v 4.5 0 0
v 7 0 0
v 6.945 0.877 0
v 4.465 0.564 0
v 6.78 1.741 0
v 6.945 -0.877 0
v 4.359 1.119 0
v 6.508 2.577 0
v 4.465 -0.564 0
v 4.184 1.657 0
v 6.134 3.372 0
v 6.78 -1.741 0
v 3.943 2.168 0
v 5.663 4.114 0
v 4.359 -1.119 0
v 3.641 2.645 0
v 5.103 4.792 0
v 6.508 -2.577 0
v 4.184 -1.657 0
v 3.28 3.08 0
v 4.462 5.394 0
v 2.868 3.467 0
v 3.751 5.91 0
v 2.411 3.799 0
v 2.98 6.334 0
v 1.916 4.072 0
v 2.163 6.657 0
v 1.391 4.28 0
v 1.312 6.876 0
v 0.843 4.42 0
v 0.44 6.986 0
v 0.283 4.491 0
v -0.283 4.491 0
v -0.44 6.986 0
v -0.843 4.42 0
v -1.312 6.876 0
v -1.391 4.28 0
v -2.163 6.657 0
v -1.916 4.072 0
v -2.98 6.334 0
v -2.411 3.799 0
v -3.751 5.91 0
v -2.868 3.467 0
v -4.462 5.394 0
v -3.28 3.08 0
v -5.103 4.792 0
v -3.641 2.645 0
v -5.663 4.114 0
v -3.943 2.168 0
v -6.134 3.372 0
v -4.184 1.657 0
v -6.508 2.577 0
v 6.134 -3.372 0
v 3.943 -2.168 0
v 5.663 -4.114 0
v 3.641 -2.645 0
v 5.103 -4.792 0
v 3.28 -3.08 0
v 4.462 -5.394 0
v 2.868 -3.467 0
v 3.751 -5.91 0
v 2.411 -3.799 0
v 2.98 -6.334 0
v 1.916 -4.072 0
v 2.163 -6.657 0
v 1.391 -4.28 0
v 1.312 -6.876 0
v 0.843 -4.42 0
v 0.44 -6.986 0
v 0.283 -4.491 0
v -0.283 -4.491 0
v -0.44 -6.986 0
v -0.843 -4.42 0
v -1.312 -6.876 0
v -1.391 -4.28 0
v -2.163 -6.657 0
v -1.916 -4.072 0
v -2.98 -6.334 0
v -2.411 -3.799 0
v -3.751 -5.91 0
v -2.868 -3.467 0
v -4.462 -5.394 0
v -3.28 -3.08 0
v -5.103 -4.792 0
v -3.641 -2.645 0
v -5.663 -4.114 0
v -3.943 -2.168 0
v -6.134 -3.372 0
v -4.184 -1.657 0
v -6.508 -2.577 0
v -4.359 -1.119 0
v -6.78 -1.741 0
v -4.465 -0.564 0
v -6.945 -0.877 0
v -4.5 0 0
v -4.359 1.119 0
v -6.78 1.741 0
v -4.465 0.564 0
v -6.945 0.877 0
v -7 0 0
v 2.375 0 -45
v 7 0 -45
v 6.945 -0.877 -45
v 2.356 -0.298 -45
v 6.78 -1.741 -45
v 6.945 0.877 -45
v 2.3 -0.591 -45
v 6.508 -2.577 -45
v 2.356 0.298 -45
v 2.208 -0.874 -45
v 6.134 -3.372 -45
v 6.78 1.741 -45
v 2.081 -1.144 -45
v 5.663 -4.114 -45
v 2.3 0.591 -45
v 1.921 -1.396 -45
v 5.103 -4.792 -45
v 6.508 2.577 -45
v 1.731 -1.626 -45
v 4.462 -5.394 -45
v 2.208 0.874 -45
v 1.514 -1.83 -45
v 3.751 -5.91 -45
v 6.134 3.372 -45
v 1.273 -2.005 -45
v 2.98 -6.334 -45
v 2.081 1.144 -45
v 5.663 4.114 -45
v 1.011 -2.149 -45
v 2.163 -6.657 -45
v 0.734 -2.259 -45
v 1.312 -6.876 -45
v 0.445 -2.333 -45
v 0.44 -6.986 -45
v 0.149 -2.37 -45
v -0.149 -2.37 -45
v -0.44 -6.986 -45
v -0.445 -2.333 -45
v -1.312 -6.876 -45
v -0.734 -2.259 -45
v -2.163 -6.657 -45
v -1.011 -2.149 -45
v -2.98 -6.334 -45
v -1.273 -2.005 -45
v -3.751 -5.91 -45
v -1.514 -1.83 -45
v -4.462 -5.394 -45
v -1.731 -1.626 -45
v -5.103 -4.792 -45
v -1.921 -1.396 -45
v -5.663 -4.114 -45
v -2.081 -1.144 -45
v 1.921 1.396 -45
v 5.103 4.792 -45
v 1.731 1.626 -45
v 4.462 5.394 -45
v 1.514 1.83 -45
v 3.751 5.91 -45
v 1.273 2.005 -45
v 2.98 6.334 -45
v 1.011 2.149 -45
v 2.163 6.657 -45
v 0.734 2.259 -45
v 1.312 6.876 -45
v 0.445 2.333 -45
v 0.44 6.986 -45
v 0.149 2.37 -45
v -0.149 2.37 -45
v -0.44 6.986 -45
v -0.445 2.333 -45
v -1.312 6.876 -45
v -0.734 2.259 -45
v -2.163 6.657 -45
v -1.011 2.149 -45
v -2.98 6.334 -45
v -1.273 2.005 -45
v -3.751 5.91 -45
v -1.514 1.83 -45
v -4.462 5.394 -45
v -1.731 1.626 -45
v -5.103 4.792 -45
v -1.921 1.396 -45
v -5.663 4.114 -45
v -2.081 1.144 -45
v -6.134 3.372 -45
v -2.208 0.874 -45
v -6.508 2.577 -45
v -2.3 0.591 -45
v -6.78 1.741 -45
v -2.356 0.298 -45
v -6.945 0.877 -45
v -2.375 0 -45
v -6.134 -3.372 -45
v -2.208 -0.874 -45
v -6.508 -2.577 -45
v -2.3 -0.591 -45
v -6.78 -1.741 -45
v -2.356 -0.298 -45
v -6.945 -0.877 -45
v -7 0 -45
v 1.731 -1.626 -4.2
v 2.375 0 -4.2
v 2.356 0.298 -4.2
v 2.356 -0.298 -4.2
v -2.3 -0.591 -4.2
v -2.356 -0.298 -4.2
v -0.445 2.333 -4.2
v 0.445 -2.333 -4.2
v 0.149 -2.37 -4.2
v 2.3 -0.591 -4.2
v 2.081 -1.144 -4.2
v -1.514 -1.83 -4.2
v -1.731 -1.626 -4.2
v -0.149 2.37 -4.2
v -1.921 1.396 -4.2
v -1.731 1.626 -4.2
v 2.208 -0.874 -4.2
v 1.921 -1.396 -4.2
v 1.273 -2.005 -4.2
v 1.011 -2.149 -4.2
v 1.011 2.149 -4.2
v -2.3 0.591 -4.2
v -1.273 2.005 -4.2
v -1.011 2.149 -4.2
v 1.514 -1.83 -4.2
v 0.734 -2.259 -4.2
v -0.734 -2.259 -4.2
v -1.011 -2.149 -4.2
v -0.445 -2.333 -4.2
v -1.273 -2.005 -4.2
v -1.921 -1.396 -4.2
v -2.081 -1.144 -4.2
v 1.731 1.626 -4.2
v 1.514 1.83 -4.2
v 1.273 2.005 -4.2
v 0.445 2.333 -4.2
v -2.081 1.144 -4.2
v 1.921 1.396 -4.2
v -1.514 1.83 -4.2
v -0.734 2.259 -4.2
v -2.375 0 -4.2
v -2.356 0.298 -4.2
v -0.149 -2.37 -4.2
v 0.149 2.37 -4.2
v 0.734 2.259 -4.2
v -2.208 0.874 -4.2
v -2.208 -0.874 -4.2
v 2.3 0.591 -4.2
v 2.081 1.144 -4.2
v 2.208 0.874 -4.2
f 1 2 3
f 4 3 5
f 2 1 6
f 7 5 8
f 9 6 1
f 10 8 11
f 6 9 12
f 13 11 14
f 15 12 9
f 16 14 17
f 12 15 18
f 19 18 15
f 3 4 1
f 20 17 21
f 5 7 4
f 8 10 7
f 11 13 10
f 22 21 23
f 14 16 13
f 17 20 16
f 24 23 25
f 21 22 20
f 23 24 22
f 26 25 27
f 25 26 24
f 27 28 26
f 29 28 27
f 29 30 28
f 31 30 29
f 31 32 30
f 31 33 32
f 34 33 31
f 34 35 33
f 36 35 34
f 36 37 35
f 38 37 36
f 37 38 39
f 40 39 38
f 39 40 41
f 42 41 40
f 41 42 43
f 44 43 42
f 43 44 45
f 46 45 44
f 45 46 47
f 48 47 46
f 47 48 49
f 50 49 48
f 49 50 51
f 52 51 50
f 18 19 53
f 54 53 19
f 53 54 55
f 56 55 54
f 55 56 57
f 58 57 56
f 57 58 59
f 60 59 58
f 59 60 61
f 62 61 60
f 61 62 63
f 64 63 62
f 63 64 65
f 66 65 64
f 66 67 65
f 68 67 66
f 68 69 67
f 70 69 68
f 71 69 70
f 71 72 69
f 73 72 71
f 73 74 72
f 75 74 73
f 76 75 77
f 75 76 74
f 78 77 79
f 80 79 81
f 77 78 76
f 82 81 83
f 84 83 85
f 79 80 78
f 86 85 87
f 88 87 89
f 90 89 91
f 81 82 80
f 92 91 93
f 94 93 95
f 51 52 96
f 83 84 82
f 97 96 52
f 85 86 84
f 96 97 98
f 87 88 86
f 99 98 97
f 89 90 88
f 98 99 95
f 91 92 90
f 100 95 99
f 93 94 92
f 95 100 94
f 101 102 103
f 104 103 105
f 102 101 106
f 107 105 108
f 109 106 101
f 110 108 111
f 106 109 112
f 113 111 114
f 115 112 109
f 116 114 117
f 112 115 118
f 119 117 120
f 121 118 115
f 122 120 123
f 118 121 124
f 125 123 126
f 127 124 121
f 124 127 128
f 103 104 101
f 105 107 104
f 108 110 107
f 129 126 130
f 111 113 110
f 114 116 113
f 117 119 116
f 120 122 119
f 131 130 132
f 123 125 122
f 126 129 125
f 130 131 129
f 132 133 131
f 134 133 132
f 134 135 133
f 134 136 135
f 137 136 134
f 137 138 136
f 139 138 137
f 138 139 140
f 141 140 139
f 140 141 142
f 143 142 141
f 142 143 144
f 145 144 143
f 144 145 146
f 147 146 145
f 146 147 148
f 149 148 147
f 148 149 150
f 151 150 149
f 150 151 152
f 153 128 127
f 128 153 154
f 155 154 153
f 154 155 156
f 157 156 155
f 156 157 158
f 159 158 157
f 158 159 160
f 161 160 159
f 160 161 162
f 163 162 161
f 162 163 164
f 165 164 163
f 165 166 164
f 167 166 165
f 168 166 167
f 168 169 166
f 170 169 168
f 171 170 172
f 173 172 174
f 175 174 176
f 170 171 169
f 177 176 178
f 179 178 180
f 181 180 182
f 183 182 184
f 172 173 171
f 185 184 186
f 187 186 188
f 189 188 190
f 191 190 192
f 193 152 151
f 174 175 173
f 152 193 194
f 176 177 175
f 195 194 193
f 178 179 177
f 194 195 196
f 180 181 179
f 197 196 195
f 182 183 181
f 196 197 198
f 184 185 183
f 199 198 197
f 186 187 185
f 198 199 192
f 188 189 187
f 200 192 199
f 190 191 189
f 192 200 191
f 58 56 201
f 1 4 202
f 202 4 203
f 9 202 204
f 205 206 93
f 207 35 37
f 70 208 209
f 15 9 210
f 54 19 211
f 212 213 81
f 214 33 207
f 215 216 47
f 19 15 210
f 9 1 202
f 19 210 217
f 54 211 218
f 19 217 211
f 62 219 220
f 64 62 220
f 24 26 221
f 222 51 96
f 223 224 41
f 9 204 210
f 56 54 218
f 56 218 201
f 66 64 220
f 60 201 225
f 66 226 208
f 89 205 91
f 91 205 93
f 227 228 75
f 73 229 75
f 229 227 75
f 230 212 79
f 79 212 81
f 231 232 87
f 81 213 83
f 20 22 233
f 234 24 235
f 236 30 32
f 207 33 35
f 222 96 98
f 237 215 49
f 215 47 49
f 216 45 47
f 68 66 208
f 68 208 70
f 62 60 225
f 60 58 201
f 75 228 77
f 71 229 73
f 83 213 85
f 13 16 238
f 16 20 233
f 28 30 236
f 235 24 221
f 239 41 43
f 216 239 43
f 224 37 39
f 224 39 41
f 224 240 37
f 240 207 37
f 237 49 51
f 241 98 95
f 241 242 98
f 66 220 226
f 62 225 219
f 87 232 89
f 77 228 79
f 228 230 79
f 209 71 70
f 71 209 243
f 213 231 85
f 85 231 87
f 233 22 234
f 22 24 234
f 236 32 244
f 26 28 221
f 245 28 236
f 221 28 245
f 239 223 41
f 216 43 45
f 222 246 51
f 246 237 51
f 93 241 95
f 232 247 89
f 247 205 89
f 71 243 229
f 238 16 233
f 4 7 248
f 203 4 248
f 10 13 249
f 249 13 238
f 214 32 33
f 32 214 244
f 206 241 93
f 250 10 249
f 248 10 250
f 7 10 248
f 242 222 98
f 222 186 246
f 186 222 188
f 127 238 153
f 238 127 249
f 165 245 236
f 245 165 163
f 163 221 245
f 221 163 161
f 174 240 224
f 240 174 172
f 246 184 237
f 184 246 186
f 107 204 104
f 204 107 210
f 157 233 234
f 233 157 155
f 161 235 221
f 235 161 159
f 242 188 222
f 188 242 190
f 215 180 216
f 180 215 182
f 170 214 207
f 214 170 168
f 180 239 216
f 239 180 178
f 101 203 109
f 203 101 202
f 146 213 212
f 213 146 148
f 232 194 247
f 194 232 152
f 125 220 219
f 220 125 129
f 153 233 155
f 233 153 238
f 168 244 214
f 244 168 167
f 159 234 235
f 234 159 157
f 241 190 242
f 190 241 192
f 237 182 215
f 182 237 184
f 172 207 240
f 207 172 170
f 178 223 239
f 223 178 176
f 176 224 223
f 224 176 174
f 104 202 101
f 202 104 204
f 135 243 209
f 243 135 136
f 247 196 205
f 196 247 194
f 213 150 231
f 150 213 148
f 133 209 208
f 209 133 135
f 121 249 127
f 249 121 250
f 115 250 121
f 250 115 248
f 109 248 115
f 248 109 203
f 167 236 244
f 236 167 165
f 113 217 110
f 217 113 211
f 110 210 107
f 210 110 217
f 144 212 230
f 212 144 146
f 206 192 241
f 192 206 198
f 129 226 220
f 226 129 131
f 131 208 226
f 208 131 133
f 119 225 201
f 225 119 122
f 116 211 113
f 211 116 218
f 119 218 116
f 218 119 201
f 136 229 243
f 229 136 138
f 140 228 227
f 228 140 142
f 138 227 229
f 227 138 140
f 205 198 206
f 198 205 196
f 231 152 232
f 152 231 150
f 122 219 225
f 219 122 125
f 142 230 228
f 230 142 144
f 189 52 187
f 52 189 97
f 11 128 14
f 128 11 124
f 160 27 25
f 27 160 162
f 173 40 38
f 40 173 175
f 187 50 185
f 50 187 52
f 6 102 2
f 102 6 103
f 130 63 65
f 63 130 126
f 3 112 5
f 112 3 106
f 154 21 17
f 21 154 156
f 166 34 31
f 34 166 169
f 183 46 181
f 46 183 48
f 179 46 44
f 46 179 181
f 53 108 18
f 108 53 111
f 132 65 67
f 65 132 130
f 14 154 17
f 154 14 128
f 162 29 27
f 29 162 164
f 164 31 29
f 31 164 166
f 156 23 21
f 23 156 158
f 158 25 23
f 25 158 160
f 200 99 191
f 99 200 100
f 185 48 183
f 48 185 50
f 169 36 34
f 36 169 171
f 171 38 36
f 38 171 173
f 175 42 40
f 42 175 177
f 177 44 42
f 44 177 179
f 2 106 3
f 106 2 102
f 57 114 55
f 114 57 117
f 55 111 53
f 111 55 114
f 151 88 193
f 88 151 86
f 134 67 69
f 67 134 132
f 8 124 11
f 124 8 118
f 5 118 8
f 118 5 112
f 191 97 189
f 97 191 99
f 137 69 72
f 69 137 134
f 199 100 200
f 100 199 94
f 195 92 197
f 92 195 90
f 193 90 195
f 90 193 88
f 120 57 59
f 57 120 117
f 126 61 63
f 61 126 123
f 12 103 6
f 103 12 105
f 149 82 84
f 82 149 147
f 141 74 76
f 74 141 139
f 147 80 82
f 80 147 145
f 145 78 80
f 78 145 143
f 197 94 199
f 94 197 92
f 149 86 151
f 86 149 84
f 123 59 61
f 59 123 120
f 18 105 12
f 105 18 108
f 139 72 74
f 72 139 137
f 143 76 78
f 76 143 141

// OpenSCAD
$fn = 50;


difference() {
	union() {
		translate(v = [0, 0, -45.0000000000]) {
			cylinder(h = 45, r = 7.0000000000);
		}
		cylinder(h = 0, r = 13.0000000000);
	}
	union() {
		translate(v = [0, 0, 0]) {
			rotate(a = [0, 0, 0]) {
				difference() {
					union() {
						#translate(v = [0, 0, -45.0000000000]) {
							cylinder(h = 45, r = 2.2500000000);
						}
						#translate(v = [0, 0, -4.2000000000]) {
							cylinder(h = 4.2000000000, r = 7.0000000000, r1 = 2.3750000000, r2 = 4.5000000000);
						}
						#translate(v = [0, 0, -45.0000000000]) {
							cylinder(h = 45, r = 2.3750000000);
						}
						#translate(v = [0, 0, -45.0000000000]) {
							cylinder(h = 45, r = 2.2500000000);
						}
					}
					union();
				}
			}
		}
	}
}
